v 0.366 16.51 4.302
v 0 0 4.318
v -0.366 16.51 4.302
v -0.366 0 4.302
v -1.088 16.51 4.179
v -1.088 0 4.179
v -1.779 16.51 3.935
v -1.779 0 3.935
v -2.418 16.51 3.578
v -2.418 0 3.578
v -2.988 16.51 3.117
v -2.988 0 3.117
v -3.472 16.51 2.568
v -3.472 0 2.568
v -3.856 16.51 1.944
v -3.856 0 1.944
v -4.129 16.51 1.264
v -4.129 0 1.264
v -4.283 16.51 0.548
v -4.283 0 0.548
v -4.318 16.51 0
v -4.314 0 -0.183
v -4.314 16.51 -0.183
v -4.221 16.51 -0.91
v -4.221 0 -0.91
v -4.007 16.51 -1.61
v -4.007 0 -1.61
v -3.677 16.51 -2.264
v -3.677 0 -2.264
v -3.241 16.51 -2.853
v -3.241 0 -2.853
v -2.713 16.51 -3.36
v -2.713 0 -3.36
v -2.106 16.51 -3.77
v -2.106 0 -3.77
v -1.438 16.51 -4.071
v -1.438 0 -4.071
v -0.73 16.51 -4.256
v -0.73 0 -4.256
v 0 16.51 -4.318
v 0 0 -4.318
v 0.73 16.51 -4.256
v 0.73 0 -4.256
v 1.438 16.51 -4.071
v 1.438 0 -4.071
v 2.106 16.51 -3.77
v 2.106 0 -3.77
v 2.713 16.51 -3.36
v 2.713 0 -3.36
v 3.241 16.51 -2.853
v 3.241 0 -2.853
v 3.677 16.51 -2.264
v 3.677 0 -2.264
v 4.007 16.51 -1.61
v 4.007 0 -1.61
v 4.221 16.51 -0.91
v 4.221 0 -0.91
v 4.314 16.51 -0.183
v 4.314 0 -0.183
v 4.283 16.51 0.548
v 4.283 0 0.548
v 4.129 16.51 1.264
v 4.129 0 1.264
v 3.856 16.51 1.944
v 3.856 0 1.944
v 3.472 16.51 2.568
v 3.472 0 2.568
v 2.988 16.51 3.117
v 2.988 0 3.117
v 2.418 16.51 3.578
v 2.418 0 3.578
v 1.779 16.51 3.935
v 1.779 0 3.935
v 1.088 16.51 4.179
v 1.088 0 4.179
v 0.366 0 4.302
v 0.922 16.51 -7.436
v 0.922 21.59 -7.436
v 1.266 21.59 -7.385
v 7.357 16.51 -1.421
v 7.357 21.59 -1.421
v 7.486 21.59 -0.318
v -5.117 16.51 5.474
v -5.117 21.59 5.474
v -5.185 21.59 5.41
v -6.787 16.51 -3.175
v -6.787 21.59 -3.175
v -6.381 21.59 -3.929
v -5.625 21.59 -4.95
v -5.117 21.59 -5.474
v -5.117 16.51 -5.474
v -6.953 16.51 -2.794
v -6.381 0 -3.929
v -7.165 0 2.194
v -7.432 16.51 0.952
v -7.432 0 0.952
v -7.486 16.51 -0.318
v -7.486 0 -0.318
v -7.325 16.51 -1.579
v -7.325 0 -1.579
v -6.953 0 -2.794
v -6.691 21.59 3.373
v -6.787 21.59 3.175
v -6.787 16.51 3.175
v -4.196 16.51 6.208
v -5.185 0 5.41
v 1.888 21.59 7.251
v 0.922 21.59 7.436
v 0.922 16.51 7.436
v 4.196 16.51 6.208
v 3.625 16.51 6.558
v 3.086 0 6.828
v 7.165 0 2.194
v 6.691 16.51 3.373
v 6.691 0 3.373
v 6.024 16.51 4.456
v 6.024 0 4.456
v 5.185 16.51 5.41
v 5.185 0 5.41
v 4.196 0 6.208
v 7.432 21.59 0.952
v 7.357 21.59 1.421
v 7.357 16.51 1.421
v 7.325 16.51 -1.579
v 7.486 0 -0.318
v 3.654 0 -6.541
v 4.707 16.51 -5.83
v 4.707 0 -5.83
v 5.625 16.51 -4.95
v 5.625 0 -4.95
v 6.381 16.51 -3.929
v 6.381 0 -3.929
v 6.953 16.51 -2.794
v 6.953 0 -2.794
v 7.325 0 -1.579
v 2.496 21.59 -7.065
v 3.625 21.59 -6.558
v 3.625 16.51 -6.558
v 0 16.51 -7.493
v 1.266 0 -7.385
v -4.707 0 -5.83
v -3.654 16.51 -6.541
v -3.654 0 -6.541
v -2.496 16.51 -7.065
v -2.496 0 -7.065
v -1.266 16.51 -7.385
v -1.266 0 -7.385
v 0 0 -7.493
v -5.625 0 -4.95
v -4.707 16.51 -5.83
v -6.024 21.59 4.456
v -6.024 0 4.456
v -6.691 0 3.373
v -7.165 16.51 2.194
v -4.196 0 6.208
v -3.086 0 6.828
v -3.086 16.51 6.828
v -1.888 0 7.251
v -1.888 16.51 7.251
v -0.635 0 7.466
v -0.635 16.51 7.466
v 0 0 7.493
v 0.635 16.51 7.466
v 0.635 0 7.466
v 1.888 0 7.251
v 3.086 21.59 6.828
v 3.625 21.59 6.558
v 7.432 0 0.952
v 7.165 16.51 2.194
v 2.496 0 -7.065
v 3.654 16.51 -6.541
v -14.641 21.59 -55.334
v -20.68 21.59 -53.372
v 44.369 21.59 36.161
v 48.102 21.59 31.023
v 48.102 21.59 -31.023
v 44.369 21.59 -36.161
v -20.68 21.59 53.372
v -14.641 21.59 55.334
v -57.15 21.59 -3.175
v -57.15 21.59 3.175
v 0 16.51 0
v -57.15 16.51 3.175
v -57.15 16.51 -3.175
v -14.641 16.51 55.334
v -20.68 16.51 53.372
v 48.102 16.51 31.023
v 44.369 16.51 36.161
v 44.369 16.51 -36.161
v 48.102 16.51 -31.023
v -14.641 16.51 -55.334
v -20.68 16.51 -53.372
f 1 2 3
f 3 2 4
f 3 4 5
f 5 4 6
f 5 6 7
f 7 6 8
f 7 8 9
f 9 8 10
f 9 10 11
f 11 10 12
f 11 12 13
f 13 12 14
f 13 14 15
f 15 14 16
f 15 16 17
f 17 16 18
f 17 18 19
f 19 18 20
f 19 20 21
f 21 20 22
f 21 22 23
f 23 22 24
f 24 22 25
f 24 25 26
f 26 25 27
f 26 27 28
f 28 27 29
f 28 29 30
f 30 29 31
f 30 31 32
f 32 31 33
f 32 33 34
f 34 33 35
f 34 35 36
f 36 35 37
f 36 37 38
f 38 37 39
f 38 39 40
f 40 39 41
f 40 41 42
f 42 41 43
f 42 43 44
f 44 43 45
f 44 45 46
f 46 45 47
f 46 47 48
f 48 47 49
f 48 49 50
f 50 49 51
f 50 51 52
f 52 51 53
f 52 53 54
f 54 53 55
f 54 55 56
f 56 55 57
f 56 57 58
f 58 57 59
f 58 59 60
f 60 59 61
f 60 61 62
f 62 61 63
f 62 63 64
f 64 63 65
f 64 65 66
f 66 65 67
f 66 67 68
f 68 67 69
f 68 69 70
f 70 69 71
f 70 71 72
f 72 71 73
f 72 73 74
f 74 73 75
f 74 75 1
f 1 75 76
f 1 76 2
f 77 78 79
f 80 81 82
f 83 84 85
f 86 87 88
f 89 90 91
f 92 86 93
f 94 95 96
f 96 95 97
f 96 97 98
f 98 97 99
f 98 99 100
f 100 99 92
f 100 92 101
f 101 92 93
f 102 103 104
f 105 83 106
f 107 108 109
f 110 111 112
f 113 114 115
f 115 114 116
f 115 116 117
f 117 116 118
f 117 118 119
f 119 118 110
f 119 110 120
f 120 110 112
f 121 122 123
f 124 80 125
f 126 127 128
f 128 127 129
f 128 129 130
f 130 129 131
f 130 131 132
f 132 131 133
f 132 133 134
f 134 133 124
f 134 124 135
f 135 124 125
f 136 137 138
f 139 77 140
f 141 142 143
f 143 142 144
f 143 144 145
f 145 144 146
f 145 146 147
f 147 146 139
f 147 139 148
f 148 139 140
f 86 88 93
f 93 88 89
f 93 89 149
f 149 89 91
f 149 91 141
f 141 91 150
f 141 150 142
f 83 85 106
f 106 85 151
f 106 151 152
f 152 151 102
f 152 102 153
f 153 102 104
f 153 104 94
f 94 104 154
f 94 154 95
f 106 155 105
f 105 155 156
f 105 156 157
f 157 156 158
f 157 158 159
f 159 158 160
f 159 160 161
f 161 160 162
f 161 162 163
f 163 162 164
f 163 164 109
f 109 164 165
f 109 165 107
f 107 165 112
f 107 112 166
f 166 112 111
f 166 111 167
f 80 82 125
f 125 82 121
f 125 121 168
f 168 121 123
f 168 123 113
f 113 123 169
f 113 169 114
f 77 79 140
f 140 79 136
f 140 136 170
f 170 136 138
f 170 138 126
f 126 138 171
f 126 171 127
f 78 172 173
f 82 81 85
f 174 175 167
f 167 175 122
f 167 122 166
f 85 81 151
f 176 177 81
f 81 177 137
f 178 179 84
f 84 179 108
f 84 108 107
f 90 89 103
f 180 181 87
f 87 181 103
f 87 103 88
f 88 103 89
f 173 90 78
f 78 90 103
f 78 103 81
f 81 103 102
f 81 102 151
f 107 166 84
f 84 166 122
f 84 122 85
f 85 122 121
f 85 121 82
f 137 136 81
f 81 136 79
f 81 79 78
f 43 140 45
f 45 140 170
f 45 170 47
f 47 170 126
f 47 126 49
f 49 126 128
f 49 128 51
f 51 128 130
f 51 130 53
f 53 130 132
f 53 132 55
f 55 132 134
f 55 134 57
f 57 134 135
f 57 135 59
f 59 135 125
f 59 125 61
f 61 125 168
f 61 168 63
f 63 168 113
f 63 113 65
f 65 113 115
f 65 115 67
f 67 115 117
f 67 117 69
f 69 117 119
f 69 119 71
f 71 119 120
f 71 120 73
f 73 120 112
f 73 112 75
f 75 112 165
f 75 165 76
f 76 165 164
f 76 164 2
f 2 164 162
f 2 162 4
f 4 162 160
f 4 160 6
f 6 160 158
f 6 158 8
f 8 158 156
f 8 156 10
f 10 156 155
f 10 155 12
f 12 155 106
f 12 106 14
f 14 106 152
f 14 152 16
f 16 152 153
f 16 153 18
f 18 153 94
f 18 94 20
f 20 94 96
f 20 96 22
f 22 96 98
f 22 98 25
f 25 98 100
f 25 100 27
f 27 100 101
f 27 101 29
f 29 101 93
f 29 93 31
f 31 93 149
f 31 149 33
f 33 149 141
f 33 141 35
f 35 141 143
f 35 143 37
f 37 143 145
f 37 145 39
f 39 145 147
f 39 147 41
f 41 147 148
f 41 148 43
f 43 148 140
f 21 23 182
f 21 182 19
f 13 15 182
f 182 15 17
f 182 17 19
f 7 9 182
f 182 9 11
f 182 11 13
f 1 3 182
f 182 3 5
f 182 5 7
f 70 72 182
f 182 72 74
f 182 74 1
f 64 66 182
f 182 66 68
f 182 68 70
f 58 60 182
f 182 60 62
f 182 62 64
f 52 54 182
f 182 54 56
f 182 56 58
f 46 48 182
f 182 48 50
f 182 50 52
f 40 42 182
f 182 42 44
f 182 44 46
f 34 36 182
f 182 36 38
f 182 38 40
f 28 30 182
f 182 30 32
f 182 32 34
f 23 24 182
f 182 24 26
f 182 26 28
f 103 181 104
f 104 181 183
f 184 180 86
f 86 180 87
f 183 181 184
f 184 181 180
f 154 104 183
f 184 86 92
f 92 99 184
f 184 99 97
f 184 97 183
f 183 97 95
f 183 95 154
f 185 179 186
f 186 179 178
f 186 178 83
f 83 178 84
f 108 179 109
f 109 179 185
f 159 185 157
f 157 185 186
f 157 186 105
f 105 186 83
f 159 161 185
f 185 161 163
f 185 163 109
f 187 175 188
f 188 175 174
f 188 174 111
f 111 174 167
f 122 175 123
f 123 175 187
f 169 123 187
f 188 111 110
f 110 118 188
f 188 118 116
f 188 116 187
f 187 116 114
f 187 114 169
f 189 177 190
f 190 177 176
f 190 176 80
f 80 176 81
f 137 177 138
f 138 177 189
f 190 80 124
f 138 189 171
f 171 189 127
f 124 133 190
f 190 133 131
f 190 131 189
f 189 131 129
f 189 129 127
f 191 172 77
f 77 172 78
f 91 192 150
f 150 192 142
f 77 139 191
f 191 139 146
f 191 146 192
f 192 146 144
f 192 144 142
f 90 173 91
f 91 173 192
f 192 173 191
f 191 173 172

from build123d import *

# Parameters (mm, degrees)
SKETCH1_R           = 7.493
SKETCH1_R_2         = 4.318
BOSS_EXTRUDE1_DEPTH = 21.59
SKETCH2_W           = 57.15
SKETCH2_H           = 5.08
BOSS_EXTRUDE2_DEPTH = 3.175
CIRPATTERN1_COUNT   = 5


with BuildPart() as part:
    # Sketch1 → Boss-Extrude1 (new body)
    with BuildSketch(Plane(origin=(0, 0, 0), x_dir=(1, 0, 0), z_dir=(0, 1, 0))):
        with Locations(Location((0, 0, 0), (0, 0, 270))):
            Circle(SKETCH1_R)
        with Locations(Location((0, 0, 0), (0, 0, 270))):
            Circle(SKETCH1_R_2, mode=Mode.SUBTRACT)
    extrude(amount=BOSS_EXTRUDE1_DEPTH)

    # Sketch2 → Boss-Extrude2 (add, symmetric)
    with BuildSketch(Plane.XY):
        with Locations((-28.575, 19.05)):
            Rectangle(SKETCH2_W, SKETCH2_H)
    boss_extrude2 = extrude(amount=BOSS_EXTRUDE2_DEPTH, both=True)

    # CirPattern1: Boss-Extrude2 ×5 about axis
    cirpattern1_axis = Axis((0, 0, 0), (0, 1, 0))
    for i in range(1, CIRPATTERN1_COUNT):
        add(boss_extrude2.rotate(cirpattern1_axis, i * 360 / CIRPATTERN1_COUNT))


solid = part.part
